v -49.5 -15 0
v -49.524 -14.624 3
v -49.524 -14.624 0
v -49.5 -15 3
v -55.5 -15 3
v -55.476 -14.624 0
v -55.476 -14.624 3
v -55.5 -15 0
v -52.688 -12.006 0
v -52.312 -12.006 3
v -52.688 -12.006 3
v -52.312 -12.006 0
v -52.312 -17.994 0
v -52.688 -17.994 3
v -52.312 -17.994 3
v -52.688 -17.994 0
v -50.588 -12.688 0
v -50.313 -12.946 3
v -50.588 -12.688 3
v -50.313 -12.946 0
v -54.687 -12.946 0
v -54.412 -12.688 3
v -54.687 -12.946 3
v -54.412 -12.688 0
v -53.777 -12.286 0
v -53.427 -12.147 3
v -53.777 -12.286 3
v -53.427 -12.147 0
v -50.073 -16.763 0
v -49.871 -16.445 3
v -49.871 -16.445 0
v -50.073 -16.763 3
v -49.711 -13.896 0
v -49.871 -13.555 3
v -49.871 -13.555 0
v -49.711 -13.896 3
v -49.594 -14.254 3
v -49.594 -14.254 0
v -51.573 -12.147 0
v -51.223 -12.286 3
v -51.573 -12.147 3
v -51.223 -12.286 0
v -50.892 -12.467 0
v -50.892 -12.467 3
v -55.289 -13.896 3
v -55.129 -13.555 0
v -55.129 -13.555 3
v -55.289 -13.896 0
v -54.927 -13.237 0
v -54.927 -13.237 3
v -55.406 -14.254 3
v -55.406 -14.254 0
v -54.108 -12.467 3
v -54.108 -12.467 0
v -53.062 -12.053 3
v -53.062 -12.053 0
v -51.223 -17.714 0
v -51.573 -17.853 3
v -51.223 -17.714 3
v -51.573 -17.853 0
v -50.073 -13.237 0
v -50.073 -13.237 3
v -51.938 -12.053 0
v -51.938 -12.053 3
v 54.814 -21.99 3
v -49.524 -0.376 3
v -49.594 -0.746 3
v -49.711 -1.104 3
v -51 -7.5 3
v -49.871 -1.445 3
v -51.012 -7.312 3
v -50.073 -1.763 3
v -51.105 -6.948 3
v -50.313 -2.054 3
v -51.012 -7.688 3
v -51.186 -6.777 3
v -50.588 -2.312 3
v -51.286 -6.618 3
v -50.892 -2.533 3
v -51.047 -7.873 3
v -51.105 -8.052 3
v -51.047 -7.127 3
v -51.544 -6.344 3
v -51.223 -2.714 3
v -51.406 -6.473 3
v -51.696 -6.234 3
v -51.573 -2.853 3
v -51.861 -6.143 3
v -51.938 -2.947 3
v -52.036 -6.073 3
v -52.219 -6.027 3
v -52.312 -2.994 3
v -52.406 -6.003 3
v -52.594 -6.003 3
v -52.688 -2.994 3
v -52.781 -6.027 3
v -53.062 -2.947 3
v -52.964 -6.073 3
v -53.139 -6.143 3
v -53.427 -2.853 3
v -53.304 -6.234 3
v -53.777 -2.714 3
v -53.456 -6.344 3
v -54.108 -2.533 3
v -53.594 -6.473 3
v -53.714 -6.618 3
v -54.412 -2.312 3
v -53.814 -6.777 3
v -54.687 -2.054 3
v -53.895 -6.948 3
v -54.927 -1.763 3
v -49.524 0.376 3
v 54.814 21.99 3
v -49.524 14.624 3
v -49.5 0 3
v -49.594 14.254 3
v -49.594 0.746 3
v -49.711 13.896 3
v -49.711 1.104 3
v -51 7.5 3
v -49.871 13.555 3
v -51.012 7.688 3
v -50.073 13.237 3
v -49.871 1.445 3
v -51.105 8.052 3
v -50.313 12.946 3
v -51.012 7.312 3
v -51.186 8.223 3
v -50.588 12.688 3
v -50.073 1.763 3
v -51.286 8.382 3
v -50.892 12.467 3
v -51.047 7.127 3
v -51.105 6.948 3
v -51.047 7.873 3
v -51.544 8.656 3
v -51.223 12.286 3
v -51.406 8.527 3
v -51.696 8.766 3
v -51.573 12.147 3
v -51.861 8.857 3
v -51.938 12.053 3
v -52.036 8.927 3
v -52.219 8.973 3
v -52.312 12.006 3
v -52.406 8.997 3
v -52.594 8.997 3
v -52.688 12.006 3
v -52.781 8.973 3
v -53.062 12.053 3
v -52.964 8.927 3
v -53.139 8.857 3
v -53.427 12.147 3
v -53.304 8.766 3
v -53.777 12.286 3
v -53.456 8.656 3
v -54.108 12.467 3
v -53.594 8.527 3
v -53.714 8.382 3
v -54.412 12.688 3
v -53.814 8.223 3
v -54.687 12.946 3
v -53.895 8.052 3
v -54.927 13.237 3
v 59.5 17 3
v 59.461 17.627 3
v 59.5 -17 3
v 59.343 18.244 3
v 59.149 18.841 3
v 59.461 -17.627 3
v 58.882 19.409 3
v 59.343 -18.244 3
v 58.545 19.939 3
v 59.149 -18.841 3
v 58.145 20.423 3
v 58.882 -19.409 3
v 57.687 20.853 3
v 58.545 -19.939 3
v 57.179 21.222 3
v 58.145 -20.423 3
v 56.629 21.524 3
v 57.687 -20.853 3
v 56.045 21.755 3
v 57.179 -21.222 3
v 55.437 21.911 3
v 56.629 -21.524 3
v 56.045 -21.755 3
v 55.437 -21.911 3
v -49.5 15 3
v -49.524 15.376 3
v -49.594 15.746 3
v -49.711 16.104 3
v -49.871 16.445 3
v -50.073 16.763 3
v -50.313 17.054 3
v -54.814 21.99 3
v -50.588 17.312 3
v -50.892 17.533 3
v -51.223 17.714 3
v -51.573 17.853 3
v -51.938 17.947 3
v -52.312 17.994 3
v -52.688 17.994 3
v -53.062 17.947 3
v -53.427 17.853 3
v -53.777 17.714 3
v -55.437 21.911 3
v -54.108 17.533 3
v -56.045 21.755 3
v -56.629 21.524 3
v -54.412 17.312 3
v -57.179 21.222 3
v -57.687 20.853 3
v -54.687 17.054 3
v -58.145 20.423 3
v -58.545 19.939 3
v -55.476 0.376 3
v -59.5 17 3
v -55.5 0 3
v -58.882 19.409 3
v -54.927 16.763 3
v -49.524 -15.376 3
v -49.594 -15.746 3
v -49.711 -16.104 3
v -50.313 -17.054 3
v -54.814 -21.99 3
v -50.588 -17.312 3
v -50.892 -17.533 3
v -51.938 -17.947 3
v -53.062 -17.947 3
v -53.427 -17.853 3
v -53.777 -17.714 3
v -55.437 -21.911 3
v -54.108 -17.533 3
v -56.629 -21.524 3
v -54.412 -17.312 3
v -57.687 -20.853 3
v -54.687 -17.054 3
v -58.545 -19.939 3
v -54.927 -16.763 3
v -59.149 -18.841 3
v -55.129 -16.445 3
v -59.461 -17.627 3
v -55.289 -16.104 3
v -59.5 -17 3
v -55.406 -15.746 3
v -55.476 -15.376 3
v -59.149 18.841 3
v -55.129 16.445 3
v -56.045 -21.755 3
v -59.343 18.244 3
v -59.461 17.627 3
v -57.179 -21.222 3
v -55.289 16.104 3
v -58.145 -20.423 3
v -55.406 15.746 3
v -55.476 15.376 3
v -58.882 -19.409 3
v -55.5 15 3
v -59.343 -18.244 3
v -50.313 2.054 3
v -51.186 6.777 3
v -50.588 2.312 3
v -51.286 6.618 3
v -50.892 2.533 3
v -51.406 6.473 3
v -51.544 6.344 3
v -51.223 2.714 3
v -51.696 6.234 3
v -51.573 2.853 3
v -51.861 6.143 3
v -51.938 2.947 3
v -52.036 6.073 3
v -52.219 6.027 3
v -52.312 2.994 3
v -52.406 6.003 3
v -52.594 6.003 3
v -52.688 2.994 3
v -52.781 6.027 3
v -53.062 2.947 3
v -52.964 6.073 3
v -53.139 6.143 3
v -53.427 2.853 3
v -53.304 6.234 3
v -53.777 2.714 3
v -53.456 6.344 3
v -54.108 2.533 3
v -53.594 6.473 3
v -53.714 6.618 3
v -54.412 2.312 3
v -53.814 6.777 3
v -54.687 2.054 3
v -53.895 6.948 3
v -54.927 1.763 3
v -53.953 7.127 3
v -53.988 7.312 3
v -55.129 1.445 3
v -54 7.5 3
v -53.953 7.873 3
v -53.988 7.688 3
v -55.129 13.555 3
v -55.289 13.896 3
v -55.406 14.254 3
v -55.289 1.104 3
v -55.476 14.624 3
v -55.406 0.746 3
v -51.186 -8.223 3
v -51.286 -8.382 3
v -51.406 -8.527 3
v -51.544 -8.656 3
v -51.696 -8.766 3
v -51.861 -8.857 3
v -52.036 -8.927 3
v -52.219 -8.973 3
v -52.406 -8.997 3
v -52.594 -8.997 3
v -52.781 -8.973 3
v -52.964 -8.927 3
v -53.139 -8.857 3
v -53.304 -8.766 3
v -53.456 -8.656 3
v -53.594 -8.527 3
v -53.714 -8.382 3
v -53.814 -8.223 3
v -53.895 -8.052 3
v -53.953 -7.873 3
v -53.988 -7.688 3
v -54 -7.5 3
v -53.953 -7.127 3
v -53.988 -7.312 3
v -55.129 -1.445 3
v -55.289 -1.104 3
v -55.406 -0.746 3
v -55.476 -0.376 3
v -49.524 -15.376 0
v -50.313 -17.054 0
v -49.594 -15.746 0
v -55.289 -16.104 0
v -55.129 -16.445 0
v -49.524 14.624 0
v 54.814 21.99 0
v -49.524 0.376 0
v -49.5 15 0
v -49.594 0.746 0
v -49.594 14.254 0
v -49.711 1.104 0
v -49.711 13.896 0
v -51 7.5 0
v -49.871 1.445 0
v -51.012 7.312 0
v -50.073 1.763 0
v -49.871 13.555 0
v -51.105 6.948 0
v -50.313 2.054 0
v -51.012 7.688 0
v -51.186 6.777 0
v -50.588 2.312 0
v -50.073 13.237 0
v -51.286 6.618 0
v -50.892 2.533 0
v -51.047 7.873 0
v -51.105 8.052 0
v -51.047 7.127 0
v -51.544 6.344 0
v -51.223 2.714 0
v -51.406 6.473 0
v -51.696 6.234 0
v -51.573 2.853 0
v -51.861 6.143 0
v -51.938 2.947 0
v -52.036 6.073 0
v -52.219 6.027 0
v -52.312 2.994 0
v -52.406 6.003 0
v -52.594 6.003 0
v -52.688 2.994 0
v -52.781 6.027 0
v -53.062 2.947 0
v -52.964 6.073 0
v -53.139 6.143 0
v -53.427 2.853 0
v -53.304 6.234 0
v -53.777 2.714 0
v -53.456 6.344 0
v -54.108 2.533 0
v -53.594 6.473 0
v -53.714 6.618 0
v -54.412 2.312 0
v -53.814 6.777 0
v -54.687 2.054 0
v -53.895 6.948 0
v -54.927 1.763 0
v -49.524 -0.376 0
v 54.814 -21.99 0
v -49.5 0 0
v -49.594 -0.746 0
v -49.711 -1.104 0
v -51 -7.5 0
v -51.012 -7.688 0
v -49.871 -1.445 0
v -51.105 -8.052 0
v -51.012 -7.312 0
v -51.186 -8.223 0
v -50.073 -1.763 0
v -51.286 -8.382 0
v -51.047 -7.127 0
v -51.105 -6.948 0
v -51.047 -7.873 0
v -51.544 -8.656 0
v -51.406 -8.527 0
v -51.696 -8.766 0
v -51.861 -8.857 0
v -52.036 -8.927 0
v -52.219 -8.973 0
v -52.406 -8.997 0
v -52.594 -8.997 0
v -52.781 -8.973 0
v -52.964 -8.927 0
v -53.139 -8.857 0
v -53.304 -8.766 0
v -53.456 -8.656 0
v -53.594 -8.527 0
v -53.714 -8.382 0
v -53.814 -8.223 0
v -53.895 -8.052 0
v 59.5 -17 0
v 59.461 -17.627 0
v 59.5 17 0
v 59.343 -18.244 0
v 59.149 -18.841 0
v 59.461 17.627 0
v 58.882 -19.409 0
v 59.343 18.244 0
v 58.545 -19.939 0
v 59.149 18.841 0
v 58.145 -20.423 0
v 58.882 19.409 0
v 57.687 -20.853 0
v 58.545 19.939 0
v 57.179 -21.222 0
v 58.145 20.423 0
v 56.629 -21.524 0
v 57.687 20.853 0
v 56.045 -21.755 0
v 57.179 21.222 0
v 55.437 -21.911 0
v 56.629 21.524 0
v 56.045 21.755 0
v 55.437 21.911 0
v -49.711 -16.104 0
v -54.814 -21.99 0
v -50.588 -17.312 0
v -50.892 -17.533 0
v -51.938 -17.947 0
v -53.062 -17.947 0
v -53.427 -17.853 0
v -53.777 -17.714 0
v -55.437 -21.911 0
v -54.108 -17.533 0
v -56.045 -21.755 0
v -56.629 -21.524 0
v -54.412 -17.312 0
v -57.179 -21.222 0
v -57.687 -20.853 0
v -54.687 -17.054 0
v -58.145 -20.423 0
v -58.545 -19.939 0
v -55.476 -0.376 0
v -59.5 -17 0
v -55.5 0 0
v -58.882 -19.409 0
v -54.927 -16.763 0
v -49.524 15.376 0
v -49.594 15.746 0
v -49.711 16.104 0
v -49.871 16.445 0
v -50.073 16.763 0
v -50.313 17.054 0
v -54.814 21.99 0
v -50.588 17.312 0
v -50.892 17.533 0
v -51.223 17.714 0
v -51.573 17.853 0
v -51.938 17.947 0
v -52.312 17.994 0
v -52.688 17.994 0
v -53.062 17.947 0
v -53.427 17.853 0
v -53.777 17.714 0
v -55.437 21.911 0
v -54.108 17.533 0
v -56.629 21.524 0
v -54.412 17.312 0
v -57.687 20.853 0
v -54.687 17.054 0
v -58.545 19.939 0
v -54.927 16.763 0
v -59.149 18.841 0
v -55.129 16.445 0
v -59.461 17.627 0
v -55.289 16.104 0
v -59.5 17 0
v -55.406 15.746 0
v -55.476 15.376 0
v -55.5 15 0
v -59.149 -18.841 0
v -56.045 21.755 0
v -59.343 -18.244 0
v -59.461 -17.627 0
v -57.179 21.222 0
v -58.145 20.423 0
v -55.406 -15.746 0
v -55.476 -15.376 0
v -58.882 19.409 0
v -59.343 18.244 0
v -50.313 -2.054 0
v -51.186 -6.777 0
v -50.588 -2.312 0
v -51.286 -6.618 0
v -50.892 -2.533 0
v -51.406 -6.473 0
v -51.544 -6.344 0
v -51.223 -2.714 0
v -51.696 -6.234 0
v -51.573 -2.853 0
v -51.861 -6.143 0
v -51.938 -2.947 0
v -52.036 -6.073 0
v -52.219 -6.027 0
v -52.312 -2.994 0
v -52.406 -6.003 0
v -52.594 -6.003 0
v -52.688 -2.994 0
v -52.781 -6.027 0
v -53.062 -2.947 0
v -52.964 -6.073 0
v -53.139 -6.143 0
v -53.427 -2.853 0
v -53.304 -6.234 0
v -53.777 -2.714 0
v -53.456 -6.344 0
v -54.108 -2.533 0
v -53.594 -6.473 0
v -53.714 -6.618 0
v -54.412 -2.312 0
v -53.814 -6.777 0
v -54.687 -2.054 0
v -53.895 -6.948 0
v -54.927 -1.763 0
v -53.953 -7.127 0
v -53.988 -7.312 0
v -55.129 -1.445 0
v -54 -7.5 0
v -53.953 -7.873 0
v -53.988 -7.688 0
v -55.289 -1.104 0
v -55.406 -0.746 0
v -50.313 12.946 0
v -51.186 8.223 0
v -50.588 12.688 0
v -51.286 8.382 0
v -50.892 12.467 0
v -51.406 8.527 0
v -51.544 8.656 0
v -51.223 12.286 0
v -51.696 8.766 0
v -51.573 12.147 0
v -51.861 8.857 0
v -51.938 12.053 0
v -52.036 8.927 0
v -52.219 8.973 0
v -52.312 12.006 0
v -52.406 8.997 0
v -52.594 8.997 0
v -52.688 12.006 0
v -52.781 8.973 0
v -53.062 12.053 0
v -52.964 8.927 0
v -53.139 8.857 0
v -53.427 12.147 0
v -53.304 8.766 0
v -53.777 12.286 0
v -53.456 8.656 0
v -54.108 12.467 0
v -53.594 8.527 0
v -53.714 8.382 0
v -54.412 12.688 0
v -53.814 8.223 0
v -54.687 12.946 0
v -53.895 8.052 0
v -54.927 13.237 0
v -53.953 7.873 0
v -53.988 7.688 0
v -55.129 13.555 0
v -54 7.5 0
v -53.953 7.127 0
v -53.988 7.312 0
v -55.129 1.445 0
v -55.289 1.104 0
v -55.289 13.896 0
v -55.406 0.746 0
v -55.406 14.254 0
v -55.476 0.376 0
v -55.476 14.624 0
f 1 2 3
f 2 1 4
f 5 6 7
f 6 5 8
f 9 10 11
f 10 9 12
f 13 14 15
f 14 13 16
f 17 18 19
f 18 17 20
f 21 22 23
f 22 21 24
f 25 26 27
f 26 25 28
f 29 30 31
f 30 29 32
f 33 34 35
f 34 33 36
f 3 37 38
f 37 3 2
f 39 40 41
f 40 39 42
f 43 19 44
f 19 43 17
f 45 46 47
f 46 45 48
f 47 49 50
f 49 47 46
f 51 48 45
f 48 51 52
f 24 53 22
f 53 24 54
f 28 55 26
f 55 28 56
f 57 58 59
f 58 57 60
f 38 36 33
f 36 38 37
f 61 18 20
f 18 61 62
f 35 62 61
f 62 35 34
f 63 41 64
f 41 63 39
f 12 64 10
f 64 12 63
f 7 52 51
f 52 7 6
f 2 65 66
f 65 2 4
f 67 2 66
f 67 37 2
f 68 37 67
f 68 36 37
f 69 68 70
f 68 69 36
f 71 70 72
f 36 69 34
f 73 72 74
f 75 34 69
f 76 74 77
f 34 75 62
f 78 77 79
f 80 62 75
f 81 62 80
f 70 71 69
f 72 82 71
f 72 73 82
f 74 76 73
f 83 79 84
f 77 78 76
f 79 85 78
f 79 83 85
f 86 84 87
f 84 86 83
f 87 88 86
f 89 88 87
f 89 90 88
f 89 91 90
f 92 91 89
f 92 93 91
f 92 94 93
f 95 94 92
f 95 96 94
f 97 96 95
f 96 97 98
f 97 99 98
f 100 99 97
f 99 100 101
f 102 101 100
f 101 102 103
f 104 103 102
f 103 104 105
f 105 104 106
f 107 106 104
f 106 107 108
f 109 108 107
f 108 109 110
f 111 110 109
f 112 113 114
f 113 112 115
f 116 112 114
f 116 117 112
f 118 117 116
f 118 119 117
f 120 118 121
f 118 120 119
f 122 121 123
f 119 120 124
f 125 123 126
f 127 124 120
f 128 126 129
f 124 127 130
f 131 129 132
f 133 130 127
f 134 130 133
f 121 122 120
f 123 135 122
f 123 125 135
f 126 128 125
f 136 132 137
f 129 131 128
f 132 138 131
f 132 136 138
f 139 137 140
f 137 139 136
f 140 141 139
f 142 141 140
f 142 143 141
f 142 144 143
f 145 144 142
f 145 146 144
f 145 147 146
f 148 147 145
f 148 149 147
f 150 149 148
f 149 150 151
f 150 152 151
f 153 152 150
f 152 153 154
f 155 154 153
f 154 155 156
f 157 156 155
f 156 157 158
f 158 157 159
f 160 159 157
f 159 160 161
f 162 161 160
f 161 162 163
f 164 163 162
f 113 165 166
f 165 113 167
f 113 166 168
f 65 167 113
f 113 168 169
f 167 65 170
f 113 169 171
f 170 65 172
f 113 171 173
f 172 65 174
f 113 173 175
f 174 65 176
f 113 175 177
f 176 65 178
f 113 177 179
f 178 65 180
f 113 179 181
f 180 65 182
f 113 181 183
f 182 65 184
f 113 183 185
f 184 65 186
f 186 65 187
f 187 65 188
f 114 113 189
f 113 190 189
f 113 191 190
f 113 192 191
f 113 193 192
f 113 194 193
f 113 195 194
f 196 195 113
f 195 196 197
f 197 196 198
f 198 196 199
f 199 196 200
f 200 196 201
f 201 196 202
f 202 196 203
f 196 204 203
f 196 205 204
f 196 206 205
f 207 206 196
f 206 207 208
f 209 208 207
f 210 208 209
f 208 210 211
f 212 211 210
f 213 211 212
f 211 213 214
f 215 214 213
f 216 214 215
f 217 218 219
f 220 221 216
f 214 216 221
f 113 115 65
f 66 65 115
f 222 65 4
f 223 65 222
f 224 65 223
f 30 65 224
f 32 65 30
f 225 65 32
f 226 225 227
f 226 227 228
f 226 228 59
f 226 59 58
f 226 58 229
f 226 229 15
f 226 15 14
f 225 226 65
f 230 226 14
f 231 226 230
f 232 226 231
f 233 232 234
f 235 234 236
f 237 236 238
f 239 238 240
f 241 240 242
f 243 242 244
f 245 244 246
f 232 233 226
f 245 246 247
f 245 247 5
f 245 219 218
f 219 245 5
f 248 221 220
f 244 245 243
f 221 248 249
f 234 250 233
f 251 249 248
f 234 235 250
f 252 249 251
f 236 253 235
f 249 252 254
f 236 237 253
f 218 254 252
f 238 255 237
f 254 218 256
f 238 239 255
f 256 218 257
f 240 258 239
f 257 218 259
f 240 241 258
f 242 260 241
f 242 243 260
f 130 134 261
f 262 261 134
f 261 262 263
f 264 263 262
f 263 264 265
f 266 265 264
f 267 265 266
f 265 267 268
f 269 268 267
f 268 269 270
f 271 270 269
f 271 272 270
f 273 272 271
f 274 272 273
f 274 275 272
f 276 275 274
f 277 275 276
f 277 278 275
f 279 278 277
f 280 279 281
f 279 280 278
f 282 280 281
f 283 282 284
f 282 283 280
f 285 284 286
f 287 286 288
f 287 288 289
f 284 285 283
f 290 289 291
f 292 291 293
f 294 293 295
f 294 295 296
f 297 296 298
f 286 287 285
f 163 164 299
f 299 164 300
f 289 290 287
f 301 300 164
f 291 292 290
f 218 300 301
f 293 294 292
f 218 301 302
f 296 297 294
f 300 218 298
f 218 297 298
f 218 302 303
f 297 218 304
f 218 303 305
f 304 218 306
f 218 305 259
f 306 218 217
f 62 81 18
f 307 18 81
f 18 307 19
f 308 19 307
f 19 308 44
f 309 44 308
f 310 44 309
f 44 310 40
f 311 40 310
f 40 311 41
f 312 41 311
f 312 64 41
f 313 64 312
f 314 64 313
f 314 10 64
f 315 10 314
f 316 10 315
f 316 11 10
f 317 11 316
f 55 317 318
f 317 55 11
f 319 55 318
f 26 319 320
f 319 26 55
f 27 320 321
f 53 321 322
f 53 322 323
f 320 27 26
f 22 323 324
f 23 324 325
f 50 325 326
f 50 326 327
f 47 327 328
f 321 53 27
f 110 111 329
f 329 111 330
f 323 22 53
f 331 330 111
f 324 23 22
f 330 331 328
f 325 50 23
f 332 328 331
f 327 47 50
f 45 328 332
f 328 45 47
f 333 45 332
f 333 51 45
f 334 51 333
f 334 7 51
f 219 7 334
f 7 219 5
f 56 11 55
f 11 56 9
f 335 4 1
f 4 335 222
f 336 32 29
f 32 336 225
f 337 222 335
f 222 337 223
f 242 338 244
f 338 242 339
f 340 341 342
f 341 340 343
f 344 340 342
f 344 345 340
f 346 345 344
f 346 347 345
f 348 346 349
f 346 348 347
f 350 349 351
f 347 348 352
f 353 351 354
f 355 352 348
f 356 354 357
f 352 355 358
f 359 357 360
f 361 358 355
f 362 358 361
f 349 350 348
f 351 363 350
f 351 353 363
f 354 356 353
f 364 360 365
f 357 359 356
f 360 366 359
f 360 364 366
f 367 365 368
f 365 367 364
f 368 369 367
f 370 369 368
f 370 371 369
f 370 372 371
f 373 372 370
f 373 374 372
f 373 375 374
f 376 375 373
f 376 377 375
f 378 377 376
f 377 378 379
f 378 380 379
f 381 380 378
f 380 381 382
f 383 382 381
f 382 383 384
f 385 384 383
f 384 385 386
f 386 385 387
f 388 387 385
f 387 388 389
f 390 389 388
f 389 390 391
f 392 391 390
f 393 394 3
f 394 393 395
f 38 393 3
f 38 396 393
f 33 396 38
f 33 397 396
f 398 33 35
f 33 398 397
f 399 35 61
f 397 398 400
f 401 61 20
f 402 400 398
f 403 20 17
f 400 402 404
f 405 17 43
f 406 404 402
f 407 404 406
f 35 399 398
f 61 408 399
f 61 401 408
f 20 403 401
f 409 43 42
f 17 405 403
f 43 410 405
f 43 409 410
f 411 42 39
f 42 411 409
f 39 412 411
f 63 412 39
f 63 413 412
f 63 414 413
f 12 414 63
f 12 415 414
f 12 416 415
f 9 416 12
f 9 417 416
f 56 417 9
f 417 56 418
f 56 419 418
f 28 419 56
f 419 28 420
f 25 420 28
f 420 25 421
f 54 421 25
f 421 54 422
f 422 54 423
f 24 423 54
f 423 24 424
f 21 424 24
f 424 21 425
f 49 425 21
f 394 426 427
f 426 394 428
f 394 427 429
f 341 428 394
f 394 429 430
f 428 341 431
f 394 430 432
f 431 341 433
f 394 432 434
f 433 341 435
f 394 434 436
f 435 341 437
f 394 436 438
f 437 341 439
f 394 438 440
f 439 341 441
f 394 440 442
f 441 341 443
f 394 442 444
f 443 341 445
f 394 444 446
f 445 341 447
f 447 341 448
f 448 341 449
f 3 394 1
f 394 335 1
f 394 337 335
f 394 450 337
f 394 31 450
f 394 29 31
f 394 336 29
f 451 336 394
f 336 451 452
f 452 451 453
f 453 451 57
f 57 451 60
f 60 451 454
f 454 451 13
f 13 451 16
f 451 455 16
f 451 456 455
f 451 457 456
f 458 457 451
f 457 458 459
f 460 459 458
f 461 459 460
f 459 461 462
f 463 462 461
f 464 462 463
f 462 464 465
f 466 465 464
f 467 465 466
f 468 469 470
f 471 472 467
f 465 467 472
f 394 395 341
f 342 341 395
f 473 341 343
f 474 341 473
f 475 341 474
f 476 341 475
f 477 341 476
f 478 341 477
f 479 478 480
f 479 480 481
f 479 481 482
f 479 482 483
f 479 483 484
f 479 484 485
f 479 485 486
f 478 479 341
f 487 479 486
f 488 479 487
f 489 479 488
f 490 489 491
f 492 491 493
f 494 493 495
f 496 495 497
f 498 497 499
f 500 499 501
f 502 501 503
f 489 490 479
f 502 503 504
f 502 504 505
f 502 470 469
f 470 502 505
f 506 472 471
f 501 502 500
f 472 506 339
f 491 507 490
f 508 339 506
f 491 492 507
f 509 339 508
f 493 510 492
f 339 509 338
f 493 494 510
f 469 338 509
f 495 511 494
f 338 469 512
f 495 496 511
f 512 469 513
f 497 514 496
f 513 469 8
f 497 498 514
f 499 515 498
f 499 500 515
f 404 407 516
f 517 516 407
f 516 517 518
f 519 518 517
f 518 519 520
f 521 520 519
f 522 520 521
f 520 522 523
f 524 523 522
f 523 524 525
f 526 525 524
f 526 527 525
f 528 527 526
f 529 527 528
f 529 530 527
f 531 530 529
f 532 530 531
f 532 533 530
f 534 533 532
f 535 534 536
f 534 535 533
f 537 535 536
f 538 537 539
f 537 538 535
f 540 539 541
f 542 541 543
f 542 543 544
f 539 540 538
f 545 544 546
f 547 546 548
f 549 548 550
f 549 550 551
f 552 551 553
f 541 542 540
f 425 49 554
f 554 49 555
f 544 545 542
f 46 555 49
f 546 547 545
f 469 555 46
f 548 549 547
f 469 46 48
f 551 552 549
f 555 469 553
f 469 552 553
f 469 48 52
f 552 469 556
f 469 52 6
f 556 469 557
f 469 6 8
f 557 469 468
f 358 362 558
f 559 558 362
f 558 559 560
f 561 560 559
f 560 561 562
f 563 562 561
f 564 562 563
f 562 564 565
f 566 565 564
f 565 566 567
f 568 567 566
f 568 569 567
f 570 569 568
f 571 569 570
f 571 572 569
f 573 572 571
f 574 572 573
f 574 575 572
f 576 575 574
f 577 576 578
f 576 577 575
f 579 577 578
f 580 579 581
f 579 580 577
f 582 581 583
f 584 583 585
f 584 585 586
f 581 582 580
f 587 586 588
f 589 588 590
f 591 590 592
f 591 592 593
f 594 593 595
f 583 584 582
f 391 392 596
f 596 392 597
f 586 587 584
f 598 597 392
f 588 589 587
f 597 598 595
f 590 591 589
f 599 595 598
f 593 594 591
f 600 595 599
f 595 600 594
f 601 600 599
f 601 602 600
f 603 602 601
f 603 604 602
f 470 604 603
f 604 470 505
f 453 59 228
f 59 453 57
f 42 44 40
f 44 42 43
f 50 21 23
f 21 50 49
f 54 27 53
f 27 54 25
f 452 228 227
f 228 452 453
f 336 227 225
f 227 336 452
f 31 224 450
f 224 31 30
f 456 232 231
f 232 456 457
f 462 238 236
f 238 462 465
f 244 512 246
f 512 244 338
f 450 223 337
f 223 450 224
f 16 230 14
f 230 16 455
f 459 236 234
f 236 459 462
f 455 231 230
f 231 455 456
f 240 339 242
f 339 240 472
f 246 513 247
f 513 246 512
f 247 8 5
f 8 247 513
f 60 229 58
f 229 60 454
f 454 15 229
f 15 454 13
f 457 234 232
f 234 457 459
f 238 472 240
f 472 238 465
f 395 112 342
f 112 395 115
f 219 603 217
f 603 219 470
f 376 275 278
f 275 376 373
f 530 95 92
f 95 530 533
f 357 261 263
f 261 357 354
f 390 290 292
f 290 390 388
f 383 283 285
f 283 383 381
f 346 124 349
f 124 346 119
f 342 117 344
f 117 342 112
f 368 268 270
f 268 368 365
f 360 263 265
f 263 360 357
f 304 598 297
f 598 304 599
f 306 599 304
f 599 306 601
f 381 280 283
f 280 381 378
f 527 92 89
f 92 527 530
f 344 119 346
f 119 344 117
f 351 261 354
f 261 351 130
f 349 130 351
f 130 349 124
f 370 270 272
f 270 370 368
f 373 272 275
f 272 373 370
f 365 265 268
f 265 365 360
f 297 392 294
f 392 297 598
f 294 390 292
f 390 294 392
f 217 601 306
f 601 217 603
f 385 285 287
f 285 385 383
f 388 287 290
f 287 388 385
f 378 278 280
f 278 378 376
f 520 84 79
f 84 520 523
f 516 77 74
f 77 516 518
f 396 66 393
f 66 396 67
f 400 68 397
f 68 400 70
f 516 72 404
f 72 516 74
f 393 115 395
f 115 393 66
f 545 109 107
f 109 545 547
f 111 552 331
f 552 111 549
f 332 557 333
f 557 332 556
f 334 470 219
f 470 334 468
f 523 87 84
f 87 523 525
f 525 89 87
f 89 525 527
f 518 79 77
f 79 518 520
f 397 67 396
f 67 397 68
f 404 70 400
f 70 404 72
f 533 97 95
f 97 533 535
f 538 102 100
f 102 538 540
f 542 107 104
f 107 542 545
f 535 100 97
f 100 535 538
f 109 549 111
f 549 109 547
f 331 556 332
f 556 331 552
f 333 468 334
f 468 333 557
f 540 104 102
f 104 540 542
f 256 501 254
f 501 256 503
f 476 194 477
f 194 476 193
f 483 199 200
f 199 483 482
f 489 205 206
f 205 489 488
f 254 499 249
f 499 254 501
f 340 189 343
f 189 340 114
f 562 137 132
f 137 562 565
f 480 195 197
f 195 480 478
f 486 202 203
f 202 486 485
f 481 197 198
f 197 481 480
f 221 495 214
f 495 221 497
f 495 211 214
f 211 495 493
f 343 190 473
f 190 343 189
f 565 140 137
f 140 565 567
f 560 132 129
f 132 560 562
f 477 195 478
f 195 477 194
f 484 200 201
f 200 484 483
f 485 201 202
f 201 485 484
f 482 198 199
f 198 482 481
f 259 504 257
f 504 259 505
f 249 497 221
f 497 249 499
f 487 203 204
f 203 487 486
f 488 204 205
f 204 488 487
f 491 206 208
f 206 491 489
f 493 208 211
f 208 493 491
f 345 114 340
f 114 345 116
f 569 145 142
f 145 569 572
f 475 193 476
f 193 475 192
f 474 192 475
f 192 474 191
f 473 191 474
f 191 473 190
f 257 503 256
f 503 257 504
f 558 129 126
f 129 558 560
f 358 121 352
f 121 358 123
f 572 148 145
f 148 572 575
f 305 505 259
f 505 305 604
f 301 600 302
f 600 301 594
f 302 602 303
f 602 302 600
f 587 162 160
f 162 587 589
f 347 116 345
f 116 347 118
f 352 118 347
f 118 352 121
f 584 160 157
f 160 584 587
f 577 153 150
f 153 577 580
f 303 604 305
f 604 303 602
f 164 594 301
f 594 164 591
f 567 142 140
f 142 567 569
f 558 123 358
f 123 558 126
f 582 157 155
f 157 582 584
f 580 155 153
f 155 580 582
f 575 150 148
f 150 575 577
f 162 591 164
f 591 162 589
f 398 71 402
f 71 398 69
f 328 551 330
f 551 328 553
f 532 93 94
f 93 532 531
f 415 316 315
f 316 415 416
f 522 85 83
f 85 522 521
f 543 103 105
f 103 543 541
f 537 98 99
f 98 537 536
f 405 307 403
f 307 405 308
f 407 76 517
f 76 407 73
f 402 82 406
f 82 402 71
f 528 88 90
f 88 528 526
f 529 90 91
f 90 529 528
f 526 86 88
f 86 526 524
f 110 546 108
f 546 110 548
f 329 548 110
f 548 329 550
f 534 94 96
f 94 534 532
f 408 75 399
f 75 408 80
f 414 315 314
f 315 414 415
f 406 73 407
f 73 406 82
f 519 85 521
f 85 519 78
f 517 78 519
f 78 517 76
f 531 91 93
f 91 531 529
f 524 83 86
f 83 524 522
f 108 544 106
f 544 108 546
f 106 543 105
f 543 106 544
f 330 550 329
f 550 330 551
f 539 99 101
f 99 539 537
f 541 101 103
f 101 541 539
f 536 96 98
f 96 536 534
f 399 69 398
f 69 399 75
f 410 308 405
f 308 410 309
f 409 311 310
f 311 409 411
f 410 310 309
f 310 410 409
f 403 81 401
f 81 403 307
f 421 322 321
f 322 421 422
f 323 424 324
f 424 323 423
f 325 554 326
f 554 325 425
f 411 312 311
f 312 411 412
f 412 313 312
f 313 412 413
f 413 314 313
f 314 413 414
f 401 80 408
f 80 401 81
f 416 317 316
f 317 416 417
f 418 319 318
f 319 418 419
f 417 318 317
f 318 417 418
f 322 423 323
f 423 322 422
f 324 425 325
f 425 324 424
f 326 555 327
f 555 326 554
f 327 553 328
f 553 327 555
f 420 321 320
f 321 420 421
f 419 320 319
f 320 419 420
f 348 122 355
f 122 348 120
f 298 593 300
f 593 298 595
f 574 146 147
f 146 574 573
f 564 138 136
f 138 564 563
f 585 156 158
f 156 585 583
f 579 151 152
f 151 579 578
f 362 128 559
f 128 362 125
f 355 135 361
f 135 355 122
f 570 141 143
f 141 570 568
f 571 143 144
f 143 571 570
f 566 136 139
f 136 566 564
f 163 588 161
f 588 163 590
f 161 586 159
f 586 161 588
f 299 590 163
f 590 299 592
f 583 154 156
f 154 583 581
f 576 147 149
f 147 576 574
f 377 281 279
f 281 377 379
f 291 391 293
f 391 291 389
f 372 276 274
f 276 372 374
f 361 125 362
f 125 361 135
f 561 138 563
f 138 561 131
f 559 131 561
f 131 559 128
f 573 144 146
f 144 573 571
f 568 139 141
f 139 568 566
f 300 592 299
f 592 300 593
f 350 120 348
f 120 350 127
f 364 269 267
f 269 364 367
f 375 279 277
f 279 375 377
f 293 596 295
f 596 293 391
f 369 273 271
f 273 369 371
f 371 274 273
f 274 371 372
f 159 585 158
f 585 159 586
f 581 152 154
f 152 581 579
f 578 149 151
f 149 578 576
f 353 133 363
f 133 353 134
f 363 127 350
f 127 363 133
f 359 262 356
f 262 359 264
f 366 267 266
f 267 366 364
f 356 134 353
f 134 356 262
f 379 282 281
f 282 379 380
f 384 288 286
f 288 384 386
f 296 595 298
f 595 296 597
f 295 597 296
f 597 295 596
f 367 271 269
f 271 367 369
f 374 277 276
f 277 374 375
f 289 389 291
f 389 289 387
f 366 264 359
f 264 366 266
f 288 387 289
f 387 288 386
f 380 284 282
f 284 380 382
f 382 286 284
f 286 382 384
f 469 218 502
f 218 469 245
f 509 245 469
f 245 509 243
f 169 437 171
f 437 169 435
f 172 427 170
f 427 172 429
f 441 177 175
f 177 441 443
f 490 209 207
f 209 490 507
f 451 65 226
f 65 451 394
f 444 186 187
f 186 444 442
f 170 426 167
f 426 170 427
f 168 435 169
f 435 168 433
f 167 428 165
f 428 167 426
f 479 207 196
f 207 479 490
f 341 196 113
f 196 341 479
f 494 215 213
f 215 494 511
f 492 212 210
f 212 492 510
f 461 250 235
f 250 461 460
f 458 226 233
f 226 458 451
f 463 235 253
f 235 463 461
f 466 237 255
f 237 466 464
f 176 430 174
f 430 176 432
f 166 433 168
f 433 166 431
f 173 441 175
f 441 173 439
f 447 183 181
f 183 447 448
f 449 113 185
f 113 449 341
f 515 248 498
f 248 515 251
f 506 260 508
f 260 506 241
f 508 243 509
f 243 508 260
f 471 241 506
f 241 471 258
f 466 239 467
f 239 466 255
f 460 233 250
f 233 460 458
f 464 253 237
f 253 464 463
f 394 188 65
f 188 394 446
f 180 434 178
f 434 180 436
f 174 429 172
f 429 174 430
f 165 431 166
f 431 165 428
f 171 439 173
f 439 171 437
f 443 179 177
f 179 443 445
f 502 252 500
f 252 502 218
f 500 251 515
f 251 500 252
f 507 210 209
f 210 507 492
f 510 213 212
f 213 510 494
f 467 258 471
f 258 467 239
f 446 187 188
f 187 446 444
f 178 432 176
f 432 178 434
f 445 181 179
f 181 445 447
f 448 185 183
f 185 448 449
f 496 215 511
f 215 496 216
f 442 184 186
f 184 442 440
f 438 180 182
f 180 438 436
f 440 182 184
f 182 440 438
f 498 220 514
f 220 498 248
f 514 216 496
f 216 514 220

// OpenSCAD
$fn = 50;


difference() {
	union() {
		hull() {
			translate(v = [-54.5000000000, 17.0000000000, 0]) {
				cylinder(h = 3, r = 5);
			}
			translate(v = [54.5000000000, 17.0000000000, 0]) {
				cylinder(h = 3, r = 5);
			}
			translate(v = [-54.5000000000, -17.0000000000, 0]) {
				cylinder(h = 3, r = 5);
			}
			translate(v = [54.5000000000, -17.0000000000, 0]) {
				cylinder(h = 3, r = 5);
			}
		}
	}
	union() {
		translate(v = [-52.5000000000, -15.0000000000, 0]) {
			cylinder(h = 3, r = 3.0000000000);
		}
		translate(v = [-52.5000000000, 0.0000000000, 0]) {
			cylinder(h = 3, r = 3.0000000000);
		}
		translate(v = [-52.5000000000, 15.0000000000, 0]) {
			cylinder(h = 3, r = 3.0000000000);
		}
		translate(v = [-52.5000000000, -15.0000000000, 0]) {
			cylinder(h = 3, r = 1.5000000000);
		}
		translate(v = [-52.5000000000, -7.5000000000, 0]) {
			cylinder(h = 3, r = 1.5000000000);
		}
		translate(v = [-52.5000000000, 0.0000000000, 0]) {
			cylinder(h = 3, r = 1.5000000000);
		}
		translate(v = [-52.5000000000, 7.5000000000, 0]) {
			cylinder(h = 3, r = 1.5000000000);
		}
		translate(v = [-52.5000000000, 15.0000000000, 0]) {
			cylinder(h = 3, r = 1.5000000000);
		}
		translate(v = [-52.5000000000, -15.0000000000, 0]) {
			cylinder(h = 3, r = 1.5000000000);
		}
		translate(v = [-52.5000000000, -7.5000000000, 0]) {
			cylinder(h = 3, r = 1.5000000000);
		}
		translate(v = [-52.5000000000, 0.0000000000, 0]) {
			cylinder(h = 3, r = 1.5000000000);
		}
		translate(v = [-52.5000000000, 7.5000000000, 0]) {
			cylinder(h = 3, r = 1.5000000000);
		}
		translate(v = [-52.5000000000, 15.0000000000, 0]) {
			cylinder(h = 3, r = 1.5000000000);
		}
		translate(v = [-52.5000000000, -15.0000000000, 0]) {
			cylinder(h = 3, r = 1.5000000000);
		}
		translate(v = [-52.5000000000, -7.5000000000, 0]) {
			cylinder(h = 3, r = 1.5000000000);
		}
		translate(v = [-52.5000000000, 0.0000000000, 0]) {
			cylinder(h = 3, r = 1.5000000000);
		}
		translate(v = [-52.5000000000, 7.5000000000, 0]) {
			cylinder(h = 3, r = 1.5000000000);
		}
		translate(v = [-52.5000000000, 15.0000000000, 0]) {
			cylinder(h = 3, r = 1.5000000000);
		}
	}
}
